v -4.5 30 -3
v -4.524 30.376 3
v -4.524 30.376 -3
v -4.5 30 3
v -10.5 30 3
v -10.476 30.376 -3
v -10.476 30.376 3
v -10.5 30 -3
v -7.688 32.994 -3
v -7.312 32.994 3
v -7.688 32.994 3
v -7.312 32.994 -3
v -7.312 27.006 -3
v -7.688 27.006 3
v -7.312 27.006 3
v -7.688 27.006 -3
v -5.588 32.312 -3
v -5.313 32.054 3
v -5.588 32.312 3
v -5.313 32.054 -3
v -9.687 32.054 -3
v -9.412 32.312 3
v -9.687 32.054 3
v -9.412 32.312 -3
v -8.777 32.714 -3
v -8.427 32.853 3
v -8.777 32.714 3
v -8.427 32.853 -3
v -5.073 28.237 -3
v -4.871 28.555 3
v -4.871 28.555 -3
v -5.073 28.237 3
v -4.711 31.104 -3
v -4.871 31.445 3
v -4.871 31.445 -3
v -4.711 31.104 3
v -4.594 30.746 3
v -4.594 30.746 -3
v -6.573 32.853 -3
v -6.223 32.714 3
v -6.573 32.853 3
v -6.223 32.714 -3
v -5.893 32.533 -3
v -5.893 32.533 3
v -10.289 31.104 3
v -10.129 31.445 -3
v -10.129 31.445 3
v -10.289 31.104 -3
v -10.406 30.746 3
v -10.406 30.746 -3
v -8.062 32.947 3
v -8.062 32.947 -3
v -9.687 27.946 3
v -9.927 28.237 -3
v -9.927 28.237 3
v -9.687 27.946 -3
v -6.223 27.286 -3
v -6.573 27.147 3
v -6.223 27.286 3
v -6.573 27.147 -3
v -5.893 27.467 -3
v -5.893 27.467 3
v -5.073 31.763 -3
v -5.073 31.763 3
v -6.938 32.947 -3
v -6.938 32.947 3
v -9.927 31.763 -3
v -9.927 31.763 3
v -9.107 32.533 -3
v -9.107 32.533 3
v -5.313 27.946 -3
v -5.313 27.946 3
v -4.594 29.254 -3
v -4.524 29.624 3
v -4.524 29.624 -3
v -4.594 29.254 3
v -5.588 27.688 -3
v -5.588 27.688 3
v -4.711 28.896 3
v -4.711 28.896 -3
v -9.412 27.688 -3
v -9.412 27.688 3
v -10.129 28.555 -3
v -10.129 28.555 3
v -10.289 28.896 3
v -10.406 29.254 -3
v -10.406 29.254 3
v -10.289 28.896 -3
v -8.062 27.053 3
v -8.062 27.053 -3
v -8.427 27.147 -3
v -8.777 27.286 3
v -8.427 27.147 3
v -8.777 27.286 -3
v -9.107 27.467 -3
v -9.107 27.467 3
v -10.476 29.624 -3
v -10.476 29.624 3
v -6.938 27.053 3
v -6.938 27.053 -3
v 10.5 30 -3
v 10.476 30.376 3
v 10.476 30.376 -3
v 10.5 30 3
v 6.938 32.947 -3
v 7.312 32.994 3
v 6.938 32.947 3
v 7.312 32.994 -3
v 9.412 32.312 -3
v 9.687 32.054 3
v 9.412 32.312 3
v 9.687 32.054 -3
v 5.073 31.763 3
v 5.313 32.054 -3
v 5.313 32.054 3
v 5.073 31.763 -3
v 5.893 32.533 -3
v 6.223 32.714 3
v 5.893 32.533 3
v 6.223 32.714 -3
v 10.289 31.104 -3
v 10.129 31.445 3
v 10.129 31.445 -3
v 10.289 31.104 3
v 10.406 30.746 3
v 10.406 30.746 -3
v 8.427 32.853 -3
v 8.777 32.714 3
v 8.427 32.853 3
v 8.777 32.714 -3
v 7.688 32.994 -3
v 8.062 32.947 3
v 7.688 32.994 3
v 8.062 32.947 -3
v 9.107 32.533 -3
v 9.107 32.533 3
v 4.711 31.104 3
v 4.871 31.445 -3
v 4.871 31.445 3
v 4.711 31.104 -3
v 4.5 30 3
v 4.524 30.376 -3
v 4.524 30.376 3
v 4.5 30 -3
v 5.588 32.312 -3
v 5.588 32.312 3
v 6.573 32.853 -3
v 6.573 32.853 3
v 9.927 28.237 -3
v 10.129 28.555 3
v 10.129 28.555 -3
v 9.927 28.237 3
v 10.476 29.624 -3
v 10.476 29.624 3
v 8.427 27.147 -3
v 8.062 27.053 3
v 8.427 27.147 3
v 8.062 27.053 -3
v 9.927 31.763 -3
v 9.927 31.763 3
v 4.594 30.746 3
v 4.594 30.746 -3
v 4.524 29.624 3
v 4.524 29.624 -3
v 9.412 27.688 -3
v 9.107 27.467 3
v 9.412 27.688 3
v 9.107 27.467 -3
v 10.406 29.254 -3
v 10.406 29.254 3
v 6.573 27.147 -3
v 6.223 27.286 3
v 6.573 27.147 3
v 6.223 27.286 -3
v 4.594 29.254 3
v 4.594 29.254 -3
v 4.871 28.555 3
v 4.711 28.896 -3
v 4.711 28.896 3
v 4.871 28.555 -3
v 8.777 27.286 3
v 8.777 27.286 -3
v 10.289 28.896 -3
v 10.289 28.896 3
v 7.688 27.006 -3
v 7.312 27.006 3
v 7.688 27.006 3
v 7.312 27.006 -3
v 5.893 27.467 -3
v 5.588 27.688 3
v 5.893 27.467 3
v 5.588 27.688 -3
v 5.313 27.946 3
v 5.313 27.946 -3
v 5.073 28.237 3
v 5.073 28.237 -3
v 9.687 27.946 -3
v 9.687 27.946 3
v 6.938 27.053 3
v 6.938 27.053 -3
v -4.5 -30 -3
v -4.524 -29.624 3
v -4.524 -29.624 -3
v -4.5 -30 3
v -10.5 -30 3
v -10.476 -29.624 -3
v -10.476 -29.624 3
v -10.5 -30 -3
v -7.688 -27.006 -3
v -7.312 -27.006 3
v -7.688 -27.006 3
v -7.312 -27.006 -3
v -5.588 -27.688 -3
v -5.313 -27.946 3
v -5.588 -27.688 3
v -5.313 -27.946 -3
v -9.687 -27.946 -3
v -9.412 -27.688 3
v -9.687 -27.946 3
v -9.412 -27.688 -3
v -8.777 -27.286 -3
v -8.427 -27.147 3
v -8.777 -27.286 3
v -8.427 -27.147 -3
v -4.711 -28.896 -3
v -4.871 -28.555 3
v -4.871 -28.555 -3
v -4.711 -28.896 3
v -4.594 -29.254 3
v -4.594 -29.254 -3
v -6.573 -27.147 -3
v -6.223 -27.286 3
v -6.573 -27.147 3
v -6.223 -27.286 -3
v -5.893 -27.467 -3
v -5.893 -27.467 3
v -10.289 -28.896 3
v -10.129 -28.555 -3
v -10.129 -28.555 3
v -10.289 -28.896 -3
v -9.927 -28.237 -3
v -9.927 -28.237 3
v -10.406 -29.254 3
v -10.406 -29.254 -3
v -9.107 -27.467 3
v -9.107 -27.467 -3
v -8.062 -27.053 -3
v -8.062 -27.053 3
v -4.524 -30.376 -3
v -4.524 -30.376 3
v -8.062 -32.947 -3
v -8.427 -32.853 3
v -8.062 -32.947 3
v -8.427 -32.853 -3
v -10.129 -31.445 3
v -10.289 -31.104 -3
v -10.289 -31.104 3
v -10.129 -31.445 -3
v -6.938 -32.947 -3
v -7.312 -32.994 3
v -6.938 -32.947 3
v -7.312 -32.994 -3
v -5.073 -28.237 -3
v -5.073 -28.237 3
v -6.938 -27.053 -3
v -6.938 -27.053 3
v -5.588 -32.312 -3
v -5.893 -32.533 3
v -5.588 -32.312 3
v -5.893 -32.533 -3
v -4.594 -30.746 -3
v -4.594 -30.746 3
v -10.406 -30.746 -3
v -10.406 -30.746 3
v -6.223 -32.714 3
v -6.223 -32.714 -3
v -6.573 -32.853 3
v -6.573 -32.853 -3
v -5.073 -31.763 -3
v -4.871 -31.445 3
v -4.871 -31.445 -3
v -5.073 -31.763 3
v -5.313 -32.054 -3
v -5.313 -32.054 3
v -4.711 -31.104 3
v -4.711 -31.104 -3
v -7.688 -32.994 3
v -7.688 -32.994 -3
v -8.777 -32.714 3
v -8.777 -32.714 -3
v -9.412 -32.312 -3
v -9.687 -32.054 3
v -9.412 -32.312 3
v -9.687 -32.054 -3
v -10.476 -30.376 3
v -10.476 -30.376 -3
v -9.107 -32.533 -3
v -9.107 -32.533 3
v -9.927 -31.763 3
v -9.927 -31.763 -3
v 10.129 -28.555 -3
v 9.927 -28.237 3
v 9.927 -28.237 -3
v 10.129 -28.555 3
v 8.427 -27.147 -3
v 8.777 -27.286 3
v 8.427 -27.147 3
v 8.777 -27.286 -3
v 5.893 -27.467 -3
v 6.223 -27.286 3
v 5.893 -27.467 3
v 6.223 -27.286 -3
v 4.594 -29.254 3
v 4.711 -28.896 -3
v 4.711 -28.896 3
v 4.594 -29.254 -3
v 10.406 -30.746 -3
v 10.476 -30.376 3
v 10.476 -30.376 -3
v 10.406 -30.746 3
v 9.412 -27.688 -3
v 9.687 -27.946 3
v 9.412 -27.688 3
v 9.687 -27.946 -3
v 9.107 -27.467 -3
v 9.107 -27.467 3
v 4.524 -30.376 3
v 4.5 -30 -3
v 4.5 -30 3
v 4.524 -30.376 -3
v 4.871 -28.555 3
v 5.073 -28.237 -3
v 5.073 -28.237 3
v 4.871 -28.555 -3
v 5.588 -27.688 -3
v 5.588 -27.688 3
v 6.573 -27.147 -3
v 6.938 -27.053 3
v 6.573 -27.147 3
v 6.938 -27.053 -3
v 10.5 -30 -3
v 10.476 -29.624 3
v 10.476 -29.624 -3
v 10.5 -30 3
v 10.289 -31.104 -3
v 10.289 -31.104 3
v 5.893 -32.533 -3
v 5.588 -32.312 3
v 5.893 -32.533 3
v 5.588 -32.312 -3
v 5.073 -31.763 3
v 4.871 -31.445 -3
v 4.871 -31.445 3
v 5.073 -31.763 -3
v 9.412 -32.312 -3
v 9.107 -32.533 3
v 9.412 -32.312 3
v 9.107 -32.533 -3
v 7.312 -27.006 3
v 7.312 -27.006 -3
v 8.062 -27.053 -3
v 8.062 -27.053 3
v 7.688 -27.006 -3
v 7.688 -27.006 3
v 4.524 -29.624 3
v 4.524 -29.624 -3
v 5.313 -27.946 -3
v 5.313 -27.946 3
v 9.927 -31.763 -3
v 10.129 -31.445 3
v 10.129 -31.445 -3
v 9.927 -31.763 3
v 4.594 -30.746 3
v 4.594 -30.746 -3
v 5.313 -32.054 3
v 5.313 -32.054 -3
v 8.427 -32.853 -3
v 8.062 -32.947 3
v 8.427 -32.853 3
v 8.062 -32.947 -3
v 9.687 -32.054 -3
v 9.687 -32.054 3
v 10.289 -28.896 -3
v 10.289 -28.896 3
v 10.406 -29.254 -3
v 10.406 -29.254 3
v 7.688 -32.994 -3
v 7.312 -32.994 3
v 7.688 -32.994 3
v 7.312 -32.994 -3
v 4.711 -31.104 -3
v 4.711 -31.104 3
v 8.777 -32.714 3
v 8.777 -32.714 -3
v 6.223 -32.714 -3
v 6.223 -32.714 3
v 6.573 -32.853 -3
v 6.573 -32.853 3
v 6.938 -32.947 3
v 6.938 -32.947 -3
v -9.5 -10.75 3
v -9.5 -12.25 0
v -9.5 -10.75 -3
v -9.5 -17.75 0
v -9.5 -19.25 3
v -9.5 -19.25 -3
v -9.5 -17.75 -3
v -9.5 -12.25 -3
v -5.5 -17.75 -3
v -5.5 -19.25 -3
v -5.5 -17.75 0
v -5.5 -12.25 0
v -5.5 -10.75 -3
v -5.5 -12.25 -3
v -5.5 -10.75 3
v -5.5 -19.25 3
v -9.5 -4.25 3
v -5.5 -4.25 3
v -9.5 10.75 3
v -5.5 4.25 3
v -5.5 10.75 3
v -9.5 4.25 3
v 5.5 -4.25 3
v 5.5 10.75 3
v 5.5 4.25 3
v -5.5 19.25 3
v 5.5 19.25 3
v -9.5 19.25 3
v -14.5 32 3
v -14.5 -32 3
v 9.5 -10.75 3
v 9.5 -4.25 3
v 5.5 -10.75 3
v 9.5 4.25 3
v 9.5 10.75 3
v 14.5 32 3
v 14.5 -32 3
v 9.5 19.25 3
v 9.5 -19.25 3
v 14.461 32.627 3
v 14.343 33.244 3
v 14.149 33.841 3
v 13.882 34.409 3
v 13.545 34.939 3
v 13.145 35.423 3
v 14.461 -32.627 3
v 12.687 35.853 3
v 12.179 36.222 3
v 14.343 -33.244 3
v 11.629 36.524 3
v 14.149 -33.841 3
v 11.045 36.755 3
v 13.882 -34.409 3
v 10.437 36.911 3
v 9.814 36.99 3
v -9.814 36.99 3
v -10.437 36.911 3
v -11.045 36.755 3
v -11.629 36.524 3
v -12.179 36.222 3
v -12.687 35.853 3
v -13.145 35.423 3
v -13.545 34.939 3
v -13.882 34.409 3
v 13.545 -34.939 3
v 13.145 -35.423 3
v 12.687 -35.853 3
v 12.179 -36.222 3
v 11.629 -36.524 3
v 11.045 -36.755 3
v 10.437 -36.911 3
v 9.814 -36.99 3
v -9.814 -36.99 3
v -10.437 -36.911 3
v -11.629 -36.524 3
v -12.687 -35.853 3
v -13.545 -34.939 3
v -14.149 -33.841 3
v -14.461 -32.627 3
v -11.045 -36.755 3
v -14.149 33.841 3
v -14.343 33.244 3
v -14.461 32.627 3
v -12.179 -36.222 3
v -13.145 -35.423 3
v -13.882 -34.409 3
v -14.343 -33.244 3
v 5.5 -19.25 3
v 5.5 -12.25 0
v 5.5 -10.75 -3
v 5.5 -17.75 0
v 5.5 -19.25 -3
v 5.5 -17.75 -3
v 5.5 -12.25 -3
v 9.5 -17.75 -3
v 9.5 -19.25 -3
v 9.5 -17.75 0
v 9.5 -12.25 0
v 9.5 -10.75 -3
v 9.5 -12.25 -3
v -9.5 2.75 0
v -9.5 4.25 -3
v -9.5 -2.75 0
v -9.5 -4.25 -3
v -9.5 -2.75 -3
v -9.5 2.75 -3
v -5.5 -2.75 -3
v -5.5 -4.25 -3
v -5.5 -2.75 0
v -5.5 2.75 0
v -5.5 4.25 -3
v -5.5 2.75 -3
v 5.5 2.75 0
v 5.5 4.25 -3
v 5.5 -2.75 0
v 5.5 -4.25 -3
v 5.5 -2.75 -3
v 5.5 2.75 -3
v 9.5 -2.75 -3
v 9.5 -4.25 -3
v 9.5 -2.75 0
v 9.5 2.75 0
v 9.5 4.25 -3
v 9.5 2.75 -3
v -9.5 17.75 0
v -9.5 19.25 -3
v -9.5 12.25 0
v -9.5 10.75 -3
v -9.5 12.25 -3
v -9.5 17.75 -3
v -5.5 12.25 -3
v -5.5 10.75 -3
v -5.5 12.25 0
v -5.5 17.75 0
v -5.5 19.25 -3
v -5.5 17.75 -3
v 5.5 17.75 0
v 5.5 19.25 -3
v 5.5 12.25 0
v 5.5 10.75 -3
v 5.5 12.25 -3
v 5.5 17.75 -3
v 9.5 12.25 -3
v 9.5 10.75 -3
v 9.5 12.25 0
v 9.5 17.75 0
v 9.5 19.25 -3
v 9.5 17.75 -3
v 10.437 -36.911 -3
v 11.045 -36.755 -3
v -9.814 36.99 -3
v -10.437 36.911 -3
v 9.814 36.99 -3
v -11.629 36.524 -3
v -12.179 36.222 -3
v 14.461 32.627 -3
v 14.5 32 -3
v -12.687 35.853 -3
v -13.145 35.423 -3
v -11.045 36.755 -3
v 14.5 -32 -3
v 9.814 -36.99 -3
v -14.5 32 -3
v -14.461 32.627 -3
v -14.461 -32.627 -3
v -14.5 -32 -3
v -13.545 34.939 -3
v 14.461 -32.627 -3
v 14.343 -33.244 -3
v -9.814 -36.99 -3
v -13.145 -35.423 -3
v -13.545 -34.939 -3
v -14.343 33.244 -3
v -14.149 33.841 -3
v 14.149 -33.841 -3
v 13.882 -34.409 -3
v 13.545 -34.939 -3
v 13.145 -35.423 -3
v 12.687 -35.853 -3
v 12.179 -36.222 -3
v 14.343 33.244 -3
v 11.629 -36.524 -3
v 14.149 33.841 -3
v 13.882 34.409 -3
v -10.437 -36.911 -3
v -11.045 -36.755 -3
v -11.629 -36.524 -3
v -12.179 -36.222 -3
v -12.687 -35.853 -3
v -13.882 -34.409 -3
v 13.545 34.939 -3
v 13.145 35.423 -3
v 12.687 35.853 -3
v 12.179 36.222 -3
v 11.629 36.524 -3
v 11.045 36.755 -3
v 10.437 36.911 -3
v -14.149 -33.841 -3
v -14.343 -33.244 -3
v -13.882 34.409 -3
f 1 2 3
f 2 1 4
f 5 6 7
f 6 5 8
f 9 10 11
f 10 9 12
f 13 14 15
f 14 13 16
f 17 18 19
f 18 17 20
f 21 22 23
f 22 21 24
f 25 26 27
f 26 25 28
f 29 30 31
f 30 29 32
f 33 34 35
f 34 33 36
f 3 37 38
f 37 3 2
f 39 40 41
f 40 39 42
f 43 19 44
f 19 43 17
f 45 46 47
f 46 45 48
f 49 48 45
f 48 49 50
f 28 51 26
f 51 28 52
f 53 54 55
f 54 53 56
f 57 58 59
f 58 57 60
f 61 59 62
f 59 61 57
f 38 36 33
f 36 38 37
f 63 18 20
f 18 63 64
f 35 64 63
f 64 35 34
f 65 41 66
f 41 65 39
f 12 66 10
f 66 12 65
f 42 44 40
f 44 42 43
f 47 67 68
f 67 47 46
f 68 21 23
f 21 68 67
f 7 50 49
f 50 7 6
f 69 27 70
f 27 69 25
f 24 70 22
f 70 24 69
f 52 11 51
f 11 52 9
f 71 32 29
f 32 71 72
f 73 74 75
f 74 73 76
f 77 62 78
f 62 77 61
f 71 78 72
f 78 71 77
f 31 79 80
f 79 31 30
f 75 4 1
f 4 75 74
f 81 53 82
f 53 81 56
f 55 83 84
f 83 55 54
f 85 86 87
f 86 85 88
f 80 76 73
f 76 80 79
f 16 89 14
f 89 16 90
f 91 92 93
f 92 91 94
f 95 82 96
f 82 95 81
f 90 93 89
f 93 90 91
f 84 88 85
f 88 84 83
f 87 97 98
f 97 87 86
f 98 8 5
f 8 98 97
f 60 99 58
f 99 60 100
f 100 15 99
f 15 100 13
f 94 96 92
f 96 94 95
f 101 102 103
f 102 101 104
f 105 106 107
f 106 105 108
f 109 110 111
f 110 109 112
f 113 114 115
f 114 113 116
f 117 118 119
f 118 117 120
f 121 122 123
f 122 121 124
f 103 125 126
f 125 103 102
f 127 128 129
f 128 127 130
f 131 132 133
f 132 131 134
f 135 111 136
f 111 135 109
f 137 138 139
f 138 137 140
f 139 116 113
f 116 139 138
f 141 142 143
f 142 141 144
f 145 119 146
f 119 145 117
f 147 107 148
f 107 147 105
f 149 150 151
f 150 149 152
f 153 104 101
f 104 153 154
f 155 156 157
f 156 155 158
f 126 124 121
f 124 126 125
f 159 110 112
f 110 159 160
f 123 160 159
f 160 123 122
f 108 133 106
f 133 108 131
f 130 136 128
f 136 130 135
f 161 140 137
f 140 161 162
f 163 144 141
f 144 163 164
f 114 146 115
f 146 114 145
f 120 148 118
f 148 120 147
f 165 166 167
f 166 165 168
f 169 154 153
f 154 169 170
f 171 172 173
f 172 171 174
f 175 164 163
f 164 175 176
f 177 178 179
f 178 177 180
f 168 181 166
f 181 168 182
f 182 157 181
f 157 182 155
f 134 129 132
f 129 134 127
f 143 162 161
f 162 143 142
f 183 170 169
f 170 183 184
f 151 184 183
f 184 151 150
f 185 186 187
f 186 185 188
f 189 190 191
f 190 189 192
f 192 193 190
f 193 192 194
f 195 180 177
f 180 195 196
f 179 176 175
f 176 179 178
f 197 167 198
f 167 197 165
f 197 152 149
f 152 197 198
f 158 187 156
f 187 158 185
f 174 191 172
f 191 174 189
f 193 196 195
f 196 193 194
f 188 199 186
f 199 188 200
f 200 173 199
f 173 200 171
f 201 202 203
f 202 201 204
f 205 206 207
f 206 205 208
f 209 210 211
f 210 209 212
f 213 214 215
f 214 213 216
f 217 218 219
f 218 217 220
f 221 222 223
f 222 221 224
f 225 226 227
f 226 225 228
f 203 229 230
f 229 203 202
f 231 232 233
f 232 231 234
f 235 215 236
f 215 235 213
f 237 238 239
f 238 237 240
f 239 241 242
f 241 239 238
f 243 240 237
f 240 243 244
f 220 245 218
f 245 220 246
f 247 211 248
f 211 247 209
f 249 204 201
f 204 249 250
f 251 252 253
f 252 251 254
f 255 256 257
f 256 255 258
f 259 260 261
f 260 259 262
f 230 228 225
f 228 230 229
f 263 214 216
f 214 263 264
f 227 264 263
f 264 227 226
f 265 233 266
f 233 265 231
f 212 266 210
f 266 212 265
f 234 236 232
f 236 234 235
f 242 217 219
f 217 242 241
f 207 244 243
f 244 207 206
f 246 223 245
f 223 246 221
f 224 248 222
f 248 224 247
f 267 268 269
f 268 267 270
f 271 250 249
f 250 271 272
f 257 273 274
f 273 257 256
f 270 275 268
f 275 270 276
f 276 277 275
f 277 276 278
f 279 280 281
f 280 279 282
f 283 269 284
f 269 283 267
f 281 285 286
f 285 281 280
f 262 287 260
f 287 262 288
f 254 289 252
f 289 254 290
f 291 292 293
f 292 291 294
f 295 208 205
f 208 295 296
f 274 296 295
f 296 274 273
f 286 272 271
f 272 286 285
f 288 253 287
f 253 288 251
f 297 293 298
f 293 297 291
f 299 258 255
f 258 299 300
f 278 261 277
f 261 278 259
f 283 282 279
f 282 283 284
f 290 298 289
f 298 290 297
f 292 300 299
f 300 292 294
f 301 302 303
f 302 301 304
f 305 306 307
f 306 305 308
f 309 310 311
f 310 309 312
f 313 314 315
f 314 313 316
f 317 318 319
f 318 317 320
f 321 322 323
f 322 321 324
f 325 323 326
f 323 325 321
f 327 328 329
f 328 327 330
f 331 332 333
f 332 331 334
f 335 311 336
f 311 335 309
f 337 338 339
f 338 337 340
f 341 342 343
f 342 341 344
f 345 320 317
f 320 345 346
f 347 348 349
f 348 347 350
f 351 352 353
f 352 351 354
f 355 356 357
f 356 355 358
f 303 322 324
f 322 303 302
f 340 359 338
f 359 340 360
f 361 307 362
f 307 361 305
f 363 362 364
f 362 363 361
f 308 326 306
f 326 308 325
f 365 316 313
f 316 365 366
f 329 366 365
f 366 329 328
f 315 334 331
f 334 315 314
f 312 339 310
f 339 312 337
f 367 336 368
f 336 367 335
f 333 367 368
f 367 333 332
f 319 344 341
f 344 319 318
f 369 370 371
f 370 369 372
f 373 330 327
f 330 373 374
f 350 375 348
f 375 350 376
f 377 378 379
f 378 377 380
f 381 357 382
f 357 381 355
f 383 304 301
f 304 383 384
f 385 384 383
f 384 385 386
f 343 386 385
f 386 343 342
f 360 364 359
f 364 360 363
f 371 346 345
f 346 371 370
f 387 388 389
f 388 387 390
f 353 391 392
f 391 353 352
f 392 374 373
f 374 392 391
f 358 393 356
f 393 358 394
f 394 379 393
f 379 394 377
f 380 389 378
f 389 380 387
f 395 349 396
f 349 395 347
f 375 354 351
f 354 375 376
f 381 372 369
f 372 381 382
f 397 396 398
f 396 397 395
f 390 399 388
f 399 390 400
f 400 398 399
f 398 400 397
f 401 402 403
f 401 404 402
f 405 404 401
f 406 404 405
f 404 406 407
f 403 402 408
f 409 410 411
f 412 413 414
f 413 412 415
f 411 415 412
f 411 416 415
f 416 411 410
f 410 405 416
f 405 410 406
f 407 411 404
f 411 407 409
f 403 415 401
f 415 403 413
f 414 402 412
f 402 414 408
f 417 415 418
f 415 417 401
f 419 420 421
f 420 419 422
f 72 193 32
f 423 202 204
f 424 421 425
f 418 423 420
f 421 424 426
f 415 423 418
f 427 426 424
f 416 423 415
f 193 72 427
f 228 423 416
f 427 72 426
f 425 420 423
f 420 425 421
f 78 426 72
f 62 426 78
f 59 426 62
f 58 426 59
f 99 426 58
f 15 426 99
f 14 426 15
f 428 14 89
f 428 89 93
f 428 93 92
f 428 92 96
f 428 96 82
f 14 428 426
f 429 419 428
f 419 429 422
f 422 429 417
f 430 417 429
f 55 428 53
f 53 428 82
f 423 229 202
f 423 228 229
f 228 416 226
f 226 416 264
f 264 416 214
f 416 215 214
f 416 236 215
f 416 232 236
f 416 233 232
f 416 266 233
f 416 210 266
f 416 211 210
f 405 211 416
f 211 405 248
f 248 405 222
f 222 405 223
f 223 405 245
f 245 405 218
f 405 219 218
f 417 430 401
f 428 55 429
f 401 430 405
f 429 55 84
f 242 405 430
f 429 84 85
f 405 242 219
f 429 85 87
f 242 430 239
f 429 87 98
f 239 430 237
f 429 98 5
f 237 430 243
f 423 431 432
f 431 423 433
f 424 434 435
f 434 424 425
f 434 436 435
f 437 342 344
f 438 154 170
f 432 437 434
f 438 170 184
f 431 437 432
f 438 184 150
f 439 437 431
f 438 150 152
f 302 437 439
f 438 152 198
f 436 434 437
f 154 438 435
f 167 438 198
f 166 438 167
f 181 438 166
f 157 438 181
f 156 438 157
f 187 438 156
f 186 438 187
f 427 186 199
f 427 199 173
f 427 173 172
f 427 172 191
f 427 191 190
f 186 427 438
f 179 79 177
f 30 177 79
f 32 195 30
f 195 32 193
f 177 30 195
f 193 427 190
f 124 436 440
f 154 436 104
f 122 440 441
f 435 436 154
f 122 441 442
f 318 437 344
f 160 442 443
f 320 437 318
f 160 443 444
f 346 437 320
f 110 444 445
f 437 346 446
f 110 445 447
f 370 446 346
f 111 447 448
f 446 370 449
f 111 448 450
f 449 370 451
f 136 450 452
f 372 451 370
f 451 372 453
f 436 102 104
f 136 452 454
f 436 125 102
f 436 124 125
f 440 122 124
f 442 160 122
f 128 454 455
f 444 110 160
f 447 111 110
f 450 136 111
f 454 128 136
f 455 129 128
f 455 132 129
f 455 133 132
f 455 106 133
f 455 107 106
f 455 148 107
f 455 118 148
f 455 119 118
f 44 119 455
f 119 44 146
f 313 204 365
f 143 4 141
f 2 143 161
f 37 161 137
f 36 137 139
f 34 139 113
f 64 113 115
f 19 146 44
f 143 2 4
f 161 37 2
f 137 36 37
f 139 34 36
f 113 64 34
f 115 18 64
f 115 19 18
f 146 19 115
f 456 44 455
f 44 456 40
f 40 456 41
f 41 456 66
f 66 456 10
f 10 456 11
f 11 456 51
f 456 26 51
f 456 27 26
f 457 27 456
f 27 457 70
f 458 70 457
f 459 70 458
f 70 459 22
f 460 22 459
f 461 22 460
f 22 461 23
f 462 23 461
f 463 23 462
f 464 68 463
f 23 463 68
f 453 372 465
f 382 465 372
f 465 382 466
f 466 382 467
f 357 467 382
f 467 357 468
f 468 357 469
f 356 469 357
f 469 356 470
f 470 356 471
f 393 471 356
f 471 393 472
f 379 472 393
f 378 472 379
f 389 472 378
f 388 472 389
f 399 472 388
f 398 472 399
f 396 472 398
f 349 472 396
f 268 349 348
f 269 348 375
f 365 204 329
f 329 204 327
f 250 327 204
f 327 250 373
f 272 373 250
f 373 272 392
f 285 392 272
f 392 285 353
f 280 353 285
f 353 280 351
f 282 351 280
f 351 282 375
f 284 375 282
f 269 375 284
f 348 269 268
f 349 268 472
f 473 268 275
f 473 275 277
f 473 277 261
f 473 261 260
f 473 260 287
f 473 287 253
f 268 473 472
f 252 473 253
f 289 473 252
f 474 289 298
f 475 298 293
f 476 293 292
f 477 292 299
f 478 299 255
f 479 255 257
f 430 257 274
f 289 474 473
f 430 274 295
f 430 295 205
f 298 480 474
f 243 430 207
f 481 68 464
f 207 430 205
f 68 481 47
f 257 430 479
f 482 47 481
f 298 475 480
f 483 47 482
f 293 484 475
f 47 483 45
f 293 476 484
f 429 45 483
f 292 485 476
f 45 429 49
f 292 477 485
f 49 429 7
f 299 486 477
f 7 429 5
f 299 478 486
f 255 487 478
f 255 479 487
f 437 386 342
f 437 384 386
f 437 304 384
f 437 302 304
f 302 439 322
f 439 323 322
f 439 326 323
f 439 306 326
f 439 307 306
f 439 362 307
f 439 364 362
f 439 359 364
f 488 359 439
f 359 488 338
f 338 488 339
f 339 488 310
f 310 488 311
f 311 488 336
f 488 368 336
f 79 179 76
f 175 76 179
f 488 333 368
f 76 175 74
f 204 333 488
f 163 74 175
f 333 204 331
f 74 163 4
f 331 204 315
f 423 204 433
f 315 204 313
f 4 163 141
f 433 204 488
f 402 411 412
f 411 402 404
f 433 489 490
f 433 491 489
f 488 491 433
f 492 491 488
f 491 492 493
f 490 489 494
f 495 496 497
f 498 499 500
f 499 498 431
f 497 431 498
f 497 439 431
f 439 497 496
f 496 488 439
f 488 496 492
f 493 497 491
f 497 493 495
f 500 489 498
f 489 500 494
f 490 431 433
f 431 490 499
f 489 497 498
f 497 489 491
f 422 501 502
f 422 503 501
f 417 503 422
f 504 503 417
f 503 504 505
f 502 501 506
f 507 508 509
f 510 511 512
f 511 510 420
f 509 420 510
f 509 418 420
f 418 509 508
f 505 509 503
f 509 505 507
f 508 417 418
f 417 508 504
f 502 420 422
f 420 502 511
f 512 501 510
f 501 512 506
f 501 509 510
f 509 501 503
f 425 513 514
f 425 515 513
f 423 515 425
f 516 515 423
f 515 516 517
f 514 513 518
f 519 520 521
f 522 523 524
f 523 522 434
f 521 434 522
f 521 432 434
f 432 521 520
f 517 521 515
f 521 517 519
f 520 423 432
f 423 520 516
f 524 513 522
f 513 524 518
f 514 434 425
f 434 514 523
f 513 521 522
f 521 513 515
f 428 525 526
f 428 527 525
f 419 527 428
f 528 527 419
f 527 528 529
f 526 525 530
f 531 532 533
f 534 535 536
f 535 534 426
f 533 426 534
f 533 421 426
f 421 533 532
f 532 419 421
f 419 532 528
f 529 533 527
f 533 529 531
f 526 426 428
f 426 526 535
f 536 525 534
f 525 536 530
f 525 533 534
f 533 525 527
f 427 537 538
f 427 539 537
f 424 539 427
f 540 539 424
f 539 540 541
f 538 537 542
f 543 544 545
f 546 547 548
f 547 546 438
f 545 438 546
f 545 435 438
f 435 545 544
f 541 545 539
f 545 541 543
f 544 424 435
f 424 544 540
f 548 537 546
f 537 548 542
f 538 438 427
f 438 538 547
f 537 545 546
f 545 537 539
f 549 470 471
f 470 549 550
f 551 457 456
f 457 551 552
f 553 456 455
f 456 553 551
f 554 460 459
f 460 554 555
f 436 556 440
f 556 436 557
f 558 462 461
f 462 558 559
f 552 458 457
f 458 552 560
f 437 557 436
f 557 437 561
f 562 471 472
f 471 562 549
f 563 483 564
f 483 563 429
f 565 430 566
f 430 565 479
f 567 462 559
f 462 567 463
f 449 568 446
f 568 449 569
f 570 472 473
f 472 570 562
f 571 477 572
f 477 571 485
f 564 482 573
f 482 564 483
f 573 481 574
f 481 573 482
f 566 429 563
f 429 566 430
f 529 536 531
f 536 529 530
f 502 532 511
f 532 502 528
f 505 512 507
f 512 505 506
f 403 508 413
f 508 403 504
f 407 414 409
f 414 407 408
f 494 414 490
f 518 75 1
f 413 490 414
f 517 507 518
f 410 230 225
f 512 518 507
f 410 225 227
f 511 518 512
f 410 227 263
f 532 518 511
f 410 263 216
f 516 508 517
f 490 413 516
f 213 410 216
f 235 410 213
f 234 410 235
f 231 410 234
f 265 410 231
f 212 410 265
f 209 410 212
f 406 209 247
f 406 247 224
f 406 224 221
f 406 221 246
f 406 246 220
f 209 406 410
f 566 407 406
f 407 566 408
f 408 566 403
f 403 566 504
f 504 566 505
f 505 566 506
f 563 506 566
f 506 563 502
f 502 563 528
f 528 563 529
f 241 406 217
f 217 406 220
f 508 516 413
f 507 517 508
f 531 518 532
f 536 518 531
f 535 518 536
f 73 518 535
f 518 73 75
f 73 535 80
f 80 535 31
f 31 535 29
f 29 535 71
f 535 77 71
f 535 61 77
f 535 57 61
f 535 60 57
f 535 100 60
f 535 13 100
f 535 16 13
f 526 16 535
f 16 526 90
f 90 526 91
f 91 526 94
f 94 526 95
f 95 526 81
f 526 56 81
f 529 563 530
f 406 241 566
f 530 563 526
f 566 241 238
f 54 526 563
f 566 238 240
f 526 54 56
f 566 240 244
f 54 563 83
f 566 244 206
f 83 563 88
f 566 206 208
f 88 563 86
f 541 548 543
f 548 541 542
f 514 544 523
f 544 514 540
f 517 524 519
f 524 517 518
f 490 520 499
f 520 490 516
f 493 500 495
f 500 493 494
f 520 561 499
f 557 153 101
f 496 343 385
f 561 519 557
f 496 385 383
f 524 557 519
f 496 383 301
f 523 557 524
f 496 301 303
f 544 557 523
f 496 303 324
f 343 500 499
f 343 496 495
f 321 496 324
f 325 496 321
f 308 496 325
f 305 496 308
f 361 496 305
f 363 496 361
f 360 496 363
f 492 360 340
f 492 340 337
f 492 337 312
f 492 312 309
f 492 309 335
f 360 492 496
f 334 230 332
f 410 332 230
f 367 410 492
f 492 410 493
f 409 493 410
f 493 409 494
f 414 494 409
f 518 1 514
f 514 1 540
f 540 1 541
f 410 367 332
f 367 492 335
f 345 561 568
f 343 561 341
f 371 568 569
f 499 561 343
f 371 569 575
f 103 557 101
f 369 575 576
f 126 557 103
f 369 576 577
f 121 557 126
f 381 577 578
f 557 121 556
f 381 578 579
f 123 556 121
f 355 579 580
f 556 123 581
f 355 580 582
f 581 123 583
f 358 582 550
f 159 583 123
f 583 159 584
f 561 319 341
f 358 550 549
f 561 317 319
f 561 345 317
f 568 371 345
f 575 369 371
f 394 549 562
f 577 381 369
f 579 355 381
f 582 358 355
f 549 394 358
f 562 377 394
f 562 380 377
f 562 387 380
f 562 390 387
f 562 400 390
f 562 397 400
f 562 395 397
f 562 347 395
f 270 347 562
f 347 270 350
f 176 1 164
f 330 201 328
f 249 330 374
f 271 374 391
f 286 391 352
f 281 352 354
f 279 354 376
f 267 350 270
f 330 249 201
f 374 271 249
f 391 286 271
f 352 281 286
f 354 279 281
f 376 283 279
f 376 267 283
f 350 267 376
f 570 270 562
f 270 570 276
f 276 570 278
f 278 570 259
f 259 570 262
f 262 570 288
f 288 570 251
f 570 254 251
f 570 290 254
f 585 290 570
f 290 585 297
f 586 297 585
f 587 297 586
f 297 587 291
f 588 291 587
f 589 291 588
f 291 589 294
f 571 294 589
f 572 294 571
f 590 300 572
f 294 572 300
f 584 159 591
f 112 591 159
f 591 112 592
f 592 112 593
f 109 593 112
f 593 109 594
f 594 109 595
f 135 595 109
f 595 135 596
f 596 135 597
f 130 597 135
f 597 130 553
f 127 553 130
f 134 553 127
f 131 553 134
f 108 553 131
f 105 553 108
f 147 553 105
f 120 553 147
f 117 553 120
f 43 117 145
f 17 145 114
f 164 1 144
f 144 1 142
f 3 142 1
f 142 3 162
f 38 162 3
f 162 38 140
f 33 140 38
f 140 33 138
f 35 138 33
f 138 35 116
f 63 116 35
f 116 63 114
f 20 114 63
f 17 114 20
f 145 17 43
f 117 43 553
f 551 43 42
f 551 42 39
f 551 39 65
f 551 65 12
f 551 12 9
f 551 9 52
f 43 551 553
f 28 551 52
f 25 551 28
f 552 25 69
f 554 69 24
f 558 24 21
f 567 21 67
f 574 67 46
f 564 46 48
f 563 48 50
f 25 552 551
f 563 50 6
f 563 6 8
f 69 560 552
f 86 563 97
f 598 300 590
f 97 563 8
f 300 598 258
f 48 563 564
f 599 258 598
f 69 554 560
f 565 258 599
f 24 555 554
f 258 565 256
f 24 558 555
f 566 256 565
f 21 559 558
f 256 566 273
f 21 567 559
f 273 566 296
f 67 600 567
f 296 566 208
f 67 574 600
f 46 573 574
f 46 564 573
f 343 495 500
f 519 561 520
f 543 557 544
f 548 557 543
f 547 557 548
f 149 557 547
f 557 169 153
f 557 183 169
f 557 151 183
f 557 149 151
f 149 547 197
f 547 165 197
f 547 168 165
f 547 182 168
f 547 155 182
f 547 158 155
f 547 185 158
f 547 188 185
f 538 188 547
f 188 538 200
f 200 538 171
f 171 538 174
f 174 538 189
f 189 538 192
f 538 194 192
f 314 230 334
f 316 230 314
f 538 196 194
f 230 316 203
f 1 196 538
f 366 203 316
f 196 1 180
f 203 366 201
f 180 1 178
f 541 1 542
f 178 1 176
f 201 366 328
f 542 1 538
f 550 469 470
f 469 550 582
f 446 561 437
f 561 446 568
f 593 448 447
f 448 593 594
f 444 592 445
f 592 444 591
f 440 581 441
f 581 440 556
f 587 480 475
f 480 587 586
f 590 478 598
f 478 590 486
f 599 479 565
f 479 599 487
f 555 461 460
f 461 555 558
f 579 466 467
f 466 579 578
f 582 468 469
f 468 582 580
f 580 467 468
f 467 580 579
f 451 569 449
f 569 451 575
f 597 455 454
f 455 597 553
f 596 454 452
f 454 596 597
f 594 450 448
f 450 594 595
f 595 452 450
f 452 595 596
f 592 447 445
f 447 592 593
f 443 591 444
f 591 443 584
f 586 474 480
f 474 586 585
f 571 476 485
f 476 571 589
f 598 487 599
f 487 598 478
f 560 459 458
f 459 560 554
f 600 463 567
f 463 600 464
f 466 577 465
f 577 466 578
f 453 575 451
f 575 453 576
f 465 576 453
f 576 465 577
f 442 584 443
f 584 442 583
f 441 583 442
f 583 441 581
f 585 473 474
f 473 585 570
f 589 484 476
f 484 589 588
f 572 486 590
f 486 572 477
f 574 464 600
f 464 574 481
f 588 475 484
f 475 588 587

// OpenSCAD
$fn = 50;


difference() {
	union() {
		translate(v = [0, 0, -3.0000000000]) {
			rotate(a = [0, 0, 0]) {
				hull() {
					translate(v = [-9.5000000000, 32.0000000000, 0]) {
						rotate(a = [0, 0, 0]) {
							translate(v = [0, 0, 0]) {
								rotate(a = [0, 0, 0]) {
									cylinder(h = 6, r = 5);
								}
							}
						}
					}
					translate(v = [9.5000000000, 32.0000000000, 0]) {
						rotate(a = [0, 0, 0]) {
							translate(v = [0, 0, 0]) {
								rotate(a = [0, 0, 0]) {
									cylinder(h = 6, r = 5);
								}
							}
						}
					}
					translate(v = [-9.5000000000, -32.0000000000, 0]) {
						rotate(a = [0, 0, 0]) {
							translate(v = [0, 0, 0]) {
								rotate(a = [0, 0, 0]) {
									cylinder(h = 6, r = 5);
								}
							}
						}
					}
					translate(v = [9.5000000000, -32.0000000000, 0]) {
						rotate(a = [0, 0, 0]) {
							translate(v = [0, 0, 0]) {
								rotate(a = [0, 0, 0]) {
									cylinder(h = 6, r = 5);
								}
							}
						}
					}
				}
			}
		}
	}
	union() {
		translate(v = [-7.5000000000, 30.0000000000, -125.0000000000]) {
			rotate(a = [0, 0, 0]) {
				cylinder(h = 250, r = 3.0000000000);
			}
		}
		translate(v = [7.5000000000, 30.0000000000, -125.0000000000]) {
			rotate(a = [0, 0, 0]) {
				cylinder(h = 250, r = 3.0000000000);
			}
		}
		translate(v = [-7.5000000000, -30.0000000000, -125.0000000000]) {
			rotate(a = [0, 0, 0]) {
				cylinder(h = 250, r = 3.0000000000);
			}
		}
		translate(v = [7.5000000000, -30.0000000000, -125.0000000000]) {
			rotate(a = [0, 0, 0]) {
				cylinder(h = 250, r = 3.0000000000);
			}
		}
		translate(v = [-9.5000000000, -19.2500000000, -50]) {
			rotate(a = [0, 0, 0]) {
				cube(size = [4, 1.5000000000, 100]);
			}
		}
		translate(v = [-9.5000000000, -12.2500000000, -50]) {
			rotate(a = [0, 0, 0]) {
				cube(size = [4, 1.5000000000, 100]);
			}
		}
		translate(v = [-9.5000000000, -19.2500000000, 0]) {
			rotate(a = [0, 0, 0]) {
				cube(size = [4, 8.5000000000, 3]);
			}
		}
		translate(v = [5.5000000000, -19.2500000000, -50]) {
			rotate(a = [0, 0, 0]) {
				cube(size = [4, 1.5000000000, 100]);
			}
		}
		translate(v = [5.5000000000, -12.2500000000, -50]) {
			rotate(a = [0, 0, 0]) {
				cube(size = [4, 1.5000000000, 100]);
			}
		}
		translate(v = [5.5000000000, -19.2500000000, 0]) {
			rotate(a = [0, 0, 0]) {
				cube(size = [4, 8.5000000000, 3]);
			}
		}
		translate(v = [-9.5000000000, -4.2500000000, -50]) {
			rotate(a = [0, 0, 0]) {
				cube(size = [4, 1.5000000000, 100]);
			}
		}
		translate(v = [-9.5000000000, 2.7500000000, -50]) {
			rotate(a = [0, 0, 0]) {
				cube(size = [4, 1.5000000000, 100]);
			}
		}
		translate(v = [-9.5000000000, -4.2500000000, 0]) {
			rotate(a = [0, 0, 0]) {
				cube(size = [4, 8.5000000000, 3]);
			}
		}
		translate(v = [5.5000000000, -4.2500000000, -50]) {
			rotate(a = [0, 0, 0]) {
				cube(size = [4, 1.5000000000, 100]);
			}
		}
		translate(v = [5.5000000000, 2.7500000000, -50]) {
			rotate(a = [0, 0, 0]) {
				cube(size = [4, 1.5000000000, 100]);
			}
		}
		translate(v = [5.5000000000, -4.2500000000, 0]) {
			rotate(a = [0, 0, 0]) {
				cube(size = [4, 8.5000000000, 3]);
			}
		}
		translate(v = [-9.5000000000, 10.7500000000, -50]) {
			rotate(a = [0, 0, 0]) {
				cube(size = [4, 1.5000000000, 100]);
			}
		}
		translate(v = [-9.5000000000, 17.7500000000, -50]) {
			rotate(a = [0, 0, 0]) {
				cube(size = [4, 1.5000000000, 100]);
			}
		}
		translate(v = [-9.5000000000, 10.7500000000, 0]) {
			rotate(a = [0, 0, 0]) {
				cube(size = [4, 8.5000000000, 3]);
			}
		}
		translate(v = [5.5000000000, 10.7500000000, -50]) {
			rotate(a = [0, 0, 0]) {
				cube(size = [4, 1.5000000000, 100]);
			}
		}
		translate(v = [5.5000000000, 17.7500000000, -50]) {
			rotate(a = [0, 0, 0]) {
				cube(size = [4, 1.5000000000, 100]);
			}
		}
		translate(v = [5.5000000000, 10.7500000000, 0]) {
			rotate(a = [0, 0, 0]) {
				cube(size = [4, 8.5000000000, 3]);
			}
		}
	}
}
